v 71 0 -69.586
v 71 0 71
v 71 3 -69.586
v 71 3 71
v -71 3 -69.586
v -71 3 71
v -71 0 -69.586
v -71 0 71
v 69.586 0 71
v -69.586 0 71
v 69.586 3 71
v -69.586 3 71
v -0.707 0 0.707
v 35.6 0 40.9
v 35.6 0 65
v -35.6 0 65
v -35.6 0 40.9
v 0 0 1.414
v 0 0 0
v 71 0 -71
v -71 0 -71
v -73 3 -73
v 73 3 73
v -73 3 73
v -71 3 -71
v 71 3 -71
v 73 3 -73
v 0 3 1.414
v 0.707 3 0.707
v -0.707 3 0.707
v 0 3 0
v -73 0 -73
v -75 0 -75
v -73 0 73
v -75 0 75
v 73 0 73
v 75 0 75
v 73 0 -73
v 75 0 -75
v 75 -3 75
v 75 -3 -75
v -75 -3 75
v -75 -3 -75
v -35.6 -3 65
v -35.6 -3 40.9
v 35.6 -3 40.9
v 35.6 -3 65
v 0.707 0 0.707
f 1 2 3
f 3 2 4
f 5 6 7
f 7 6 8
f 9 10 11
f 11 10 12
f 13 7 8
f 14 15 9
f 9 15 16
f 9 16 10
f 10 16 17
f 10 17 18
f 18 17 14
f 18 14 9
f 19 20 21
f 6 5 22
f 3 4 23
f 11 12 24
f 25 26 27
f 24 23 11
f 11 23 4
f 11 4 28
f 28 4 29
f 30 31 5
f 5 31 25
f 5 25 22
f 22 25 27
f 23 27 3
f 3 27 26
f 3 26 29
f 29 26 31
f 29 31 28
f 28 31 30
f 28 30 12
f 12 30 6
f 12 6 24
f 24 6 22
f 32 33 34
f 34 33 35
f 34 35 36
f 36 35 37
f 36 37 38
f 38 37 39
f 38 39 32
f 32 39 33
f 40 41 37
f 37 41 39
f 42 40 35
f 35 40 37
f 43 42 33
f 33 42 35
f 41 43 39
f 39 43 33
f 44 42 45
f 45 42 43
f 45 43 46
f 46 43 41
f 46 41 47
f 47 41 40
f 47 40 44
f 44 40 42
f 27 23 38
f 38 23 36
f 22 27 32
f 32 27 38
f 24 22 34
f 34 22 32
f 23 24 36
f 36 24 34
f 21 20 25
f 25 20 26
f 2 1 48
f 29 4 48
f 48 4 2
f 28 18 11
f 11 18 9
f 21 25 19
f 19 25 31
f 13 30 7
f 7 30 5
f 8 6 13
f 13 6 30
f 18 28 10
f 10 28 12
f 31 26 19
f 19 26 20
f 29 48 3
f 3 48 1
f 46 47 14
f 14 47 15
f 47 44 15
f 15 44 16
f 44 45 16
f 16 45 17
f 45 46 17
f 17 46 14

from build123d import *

# Parameters (mm, degrees)
SKETCH1_W           = 150
SKETCH1_H           = 150
BOSS_EXTRUDE1_DEPTH = 3
SKETCH2_W           = 146
SKETCH2_H           = 146
BOSS_EXTRUDE2_DEPTH = 3
SKETCH3_W           = 142
SKETCH3_H           = 142
CUT_EXTRUDE1_DEPTH  = 3
EXTRUDE_THIN1_DEPTH = 3
CUT_EXTRUDE5_START  = -3
SKETCH5_W           = 71.2
SKETCH5_H           = 24.1
CUT_EXTRUDE5_DEPTH  = 3


with BuildPart() as part:
    # Sketch1 → Boss-Extrude1 (new body)
    with BuildSketch(Plane(origin=(0, 0, 0), x_dir=(1, 0, 0), z_dir=(0, 1, 0))):
        Rectangle(SKETCH1_W, SKETCH1_H)
    extrude(amount=-BOSS_EXTRUDE1_DEPTH)

    # Sketch2 → Boss-Extrude2 (add)
    with BuildSketch(Plane(origin=(0, 0, 0), x_dir=(1, 0, 0), z_dir=(0, 1, 0))):
        Rectangle(SKETCH2_W, SKETCH2_H)
    extrude(amount=BOSS_EXTRUDE2_DEPTH)

    # Sketch3 → Cut-Extrude1 (cut)
    with BuildSketch(Plane(origin=(0, 0, 0), x_dir=(1, 0, 0), z_dir=(0, 1, 0))):
        Rectangle(SKETCH3_W, SKETCH3_H)
    extrude(amount=CUT_EXTRUDE1_DEPTH, mode=Mode.SUBTRACT)

    # Sketch4 → Extrude-Thin1 (add)
    with BuildSketch(Plane(origin=(0, 0, 0), x_dir=(1, 0, 0), z_dir=(0, 1, 0))):
        Polygon((-71, 71), (71, -71), (70.292893219, -71.707106781), (-71.707106781, 70.292893219), align=None)
        Polygon((-71, -71), (71, 71), (71.707106781, 70.292893219), (-70.292893219, -71.707106781), align=None)
    extrude(amount=EXTRUDE_THIN1_DEPTH)

    # Sketch5 → Cut-Extrude5 (cut)
    with BuildSketch(Plane(origin=(0, 0, 0), x_dir=(1, 0, 0), z_dir=(0, 1, 0)).offset(CUT_EXTRUDE5_START)):
        with Locations((0, -52.95)):
            Rectangle(SKETCH5_W, SKETCH5_H)
    extrude(amount=CUT_EXTRUDE5_DEPTH, mode=Mode.SUBTRACT)


solid = part.part
